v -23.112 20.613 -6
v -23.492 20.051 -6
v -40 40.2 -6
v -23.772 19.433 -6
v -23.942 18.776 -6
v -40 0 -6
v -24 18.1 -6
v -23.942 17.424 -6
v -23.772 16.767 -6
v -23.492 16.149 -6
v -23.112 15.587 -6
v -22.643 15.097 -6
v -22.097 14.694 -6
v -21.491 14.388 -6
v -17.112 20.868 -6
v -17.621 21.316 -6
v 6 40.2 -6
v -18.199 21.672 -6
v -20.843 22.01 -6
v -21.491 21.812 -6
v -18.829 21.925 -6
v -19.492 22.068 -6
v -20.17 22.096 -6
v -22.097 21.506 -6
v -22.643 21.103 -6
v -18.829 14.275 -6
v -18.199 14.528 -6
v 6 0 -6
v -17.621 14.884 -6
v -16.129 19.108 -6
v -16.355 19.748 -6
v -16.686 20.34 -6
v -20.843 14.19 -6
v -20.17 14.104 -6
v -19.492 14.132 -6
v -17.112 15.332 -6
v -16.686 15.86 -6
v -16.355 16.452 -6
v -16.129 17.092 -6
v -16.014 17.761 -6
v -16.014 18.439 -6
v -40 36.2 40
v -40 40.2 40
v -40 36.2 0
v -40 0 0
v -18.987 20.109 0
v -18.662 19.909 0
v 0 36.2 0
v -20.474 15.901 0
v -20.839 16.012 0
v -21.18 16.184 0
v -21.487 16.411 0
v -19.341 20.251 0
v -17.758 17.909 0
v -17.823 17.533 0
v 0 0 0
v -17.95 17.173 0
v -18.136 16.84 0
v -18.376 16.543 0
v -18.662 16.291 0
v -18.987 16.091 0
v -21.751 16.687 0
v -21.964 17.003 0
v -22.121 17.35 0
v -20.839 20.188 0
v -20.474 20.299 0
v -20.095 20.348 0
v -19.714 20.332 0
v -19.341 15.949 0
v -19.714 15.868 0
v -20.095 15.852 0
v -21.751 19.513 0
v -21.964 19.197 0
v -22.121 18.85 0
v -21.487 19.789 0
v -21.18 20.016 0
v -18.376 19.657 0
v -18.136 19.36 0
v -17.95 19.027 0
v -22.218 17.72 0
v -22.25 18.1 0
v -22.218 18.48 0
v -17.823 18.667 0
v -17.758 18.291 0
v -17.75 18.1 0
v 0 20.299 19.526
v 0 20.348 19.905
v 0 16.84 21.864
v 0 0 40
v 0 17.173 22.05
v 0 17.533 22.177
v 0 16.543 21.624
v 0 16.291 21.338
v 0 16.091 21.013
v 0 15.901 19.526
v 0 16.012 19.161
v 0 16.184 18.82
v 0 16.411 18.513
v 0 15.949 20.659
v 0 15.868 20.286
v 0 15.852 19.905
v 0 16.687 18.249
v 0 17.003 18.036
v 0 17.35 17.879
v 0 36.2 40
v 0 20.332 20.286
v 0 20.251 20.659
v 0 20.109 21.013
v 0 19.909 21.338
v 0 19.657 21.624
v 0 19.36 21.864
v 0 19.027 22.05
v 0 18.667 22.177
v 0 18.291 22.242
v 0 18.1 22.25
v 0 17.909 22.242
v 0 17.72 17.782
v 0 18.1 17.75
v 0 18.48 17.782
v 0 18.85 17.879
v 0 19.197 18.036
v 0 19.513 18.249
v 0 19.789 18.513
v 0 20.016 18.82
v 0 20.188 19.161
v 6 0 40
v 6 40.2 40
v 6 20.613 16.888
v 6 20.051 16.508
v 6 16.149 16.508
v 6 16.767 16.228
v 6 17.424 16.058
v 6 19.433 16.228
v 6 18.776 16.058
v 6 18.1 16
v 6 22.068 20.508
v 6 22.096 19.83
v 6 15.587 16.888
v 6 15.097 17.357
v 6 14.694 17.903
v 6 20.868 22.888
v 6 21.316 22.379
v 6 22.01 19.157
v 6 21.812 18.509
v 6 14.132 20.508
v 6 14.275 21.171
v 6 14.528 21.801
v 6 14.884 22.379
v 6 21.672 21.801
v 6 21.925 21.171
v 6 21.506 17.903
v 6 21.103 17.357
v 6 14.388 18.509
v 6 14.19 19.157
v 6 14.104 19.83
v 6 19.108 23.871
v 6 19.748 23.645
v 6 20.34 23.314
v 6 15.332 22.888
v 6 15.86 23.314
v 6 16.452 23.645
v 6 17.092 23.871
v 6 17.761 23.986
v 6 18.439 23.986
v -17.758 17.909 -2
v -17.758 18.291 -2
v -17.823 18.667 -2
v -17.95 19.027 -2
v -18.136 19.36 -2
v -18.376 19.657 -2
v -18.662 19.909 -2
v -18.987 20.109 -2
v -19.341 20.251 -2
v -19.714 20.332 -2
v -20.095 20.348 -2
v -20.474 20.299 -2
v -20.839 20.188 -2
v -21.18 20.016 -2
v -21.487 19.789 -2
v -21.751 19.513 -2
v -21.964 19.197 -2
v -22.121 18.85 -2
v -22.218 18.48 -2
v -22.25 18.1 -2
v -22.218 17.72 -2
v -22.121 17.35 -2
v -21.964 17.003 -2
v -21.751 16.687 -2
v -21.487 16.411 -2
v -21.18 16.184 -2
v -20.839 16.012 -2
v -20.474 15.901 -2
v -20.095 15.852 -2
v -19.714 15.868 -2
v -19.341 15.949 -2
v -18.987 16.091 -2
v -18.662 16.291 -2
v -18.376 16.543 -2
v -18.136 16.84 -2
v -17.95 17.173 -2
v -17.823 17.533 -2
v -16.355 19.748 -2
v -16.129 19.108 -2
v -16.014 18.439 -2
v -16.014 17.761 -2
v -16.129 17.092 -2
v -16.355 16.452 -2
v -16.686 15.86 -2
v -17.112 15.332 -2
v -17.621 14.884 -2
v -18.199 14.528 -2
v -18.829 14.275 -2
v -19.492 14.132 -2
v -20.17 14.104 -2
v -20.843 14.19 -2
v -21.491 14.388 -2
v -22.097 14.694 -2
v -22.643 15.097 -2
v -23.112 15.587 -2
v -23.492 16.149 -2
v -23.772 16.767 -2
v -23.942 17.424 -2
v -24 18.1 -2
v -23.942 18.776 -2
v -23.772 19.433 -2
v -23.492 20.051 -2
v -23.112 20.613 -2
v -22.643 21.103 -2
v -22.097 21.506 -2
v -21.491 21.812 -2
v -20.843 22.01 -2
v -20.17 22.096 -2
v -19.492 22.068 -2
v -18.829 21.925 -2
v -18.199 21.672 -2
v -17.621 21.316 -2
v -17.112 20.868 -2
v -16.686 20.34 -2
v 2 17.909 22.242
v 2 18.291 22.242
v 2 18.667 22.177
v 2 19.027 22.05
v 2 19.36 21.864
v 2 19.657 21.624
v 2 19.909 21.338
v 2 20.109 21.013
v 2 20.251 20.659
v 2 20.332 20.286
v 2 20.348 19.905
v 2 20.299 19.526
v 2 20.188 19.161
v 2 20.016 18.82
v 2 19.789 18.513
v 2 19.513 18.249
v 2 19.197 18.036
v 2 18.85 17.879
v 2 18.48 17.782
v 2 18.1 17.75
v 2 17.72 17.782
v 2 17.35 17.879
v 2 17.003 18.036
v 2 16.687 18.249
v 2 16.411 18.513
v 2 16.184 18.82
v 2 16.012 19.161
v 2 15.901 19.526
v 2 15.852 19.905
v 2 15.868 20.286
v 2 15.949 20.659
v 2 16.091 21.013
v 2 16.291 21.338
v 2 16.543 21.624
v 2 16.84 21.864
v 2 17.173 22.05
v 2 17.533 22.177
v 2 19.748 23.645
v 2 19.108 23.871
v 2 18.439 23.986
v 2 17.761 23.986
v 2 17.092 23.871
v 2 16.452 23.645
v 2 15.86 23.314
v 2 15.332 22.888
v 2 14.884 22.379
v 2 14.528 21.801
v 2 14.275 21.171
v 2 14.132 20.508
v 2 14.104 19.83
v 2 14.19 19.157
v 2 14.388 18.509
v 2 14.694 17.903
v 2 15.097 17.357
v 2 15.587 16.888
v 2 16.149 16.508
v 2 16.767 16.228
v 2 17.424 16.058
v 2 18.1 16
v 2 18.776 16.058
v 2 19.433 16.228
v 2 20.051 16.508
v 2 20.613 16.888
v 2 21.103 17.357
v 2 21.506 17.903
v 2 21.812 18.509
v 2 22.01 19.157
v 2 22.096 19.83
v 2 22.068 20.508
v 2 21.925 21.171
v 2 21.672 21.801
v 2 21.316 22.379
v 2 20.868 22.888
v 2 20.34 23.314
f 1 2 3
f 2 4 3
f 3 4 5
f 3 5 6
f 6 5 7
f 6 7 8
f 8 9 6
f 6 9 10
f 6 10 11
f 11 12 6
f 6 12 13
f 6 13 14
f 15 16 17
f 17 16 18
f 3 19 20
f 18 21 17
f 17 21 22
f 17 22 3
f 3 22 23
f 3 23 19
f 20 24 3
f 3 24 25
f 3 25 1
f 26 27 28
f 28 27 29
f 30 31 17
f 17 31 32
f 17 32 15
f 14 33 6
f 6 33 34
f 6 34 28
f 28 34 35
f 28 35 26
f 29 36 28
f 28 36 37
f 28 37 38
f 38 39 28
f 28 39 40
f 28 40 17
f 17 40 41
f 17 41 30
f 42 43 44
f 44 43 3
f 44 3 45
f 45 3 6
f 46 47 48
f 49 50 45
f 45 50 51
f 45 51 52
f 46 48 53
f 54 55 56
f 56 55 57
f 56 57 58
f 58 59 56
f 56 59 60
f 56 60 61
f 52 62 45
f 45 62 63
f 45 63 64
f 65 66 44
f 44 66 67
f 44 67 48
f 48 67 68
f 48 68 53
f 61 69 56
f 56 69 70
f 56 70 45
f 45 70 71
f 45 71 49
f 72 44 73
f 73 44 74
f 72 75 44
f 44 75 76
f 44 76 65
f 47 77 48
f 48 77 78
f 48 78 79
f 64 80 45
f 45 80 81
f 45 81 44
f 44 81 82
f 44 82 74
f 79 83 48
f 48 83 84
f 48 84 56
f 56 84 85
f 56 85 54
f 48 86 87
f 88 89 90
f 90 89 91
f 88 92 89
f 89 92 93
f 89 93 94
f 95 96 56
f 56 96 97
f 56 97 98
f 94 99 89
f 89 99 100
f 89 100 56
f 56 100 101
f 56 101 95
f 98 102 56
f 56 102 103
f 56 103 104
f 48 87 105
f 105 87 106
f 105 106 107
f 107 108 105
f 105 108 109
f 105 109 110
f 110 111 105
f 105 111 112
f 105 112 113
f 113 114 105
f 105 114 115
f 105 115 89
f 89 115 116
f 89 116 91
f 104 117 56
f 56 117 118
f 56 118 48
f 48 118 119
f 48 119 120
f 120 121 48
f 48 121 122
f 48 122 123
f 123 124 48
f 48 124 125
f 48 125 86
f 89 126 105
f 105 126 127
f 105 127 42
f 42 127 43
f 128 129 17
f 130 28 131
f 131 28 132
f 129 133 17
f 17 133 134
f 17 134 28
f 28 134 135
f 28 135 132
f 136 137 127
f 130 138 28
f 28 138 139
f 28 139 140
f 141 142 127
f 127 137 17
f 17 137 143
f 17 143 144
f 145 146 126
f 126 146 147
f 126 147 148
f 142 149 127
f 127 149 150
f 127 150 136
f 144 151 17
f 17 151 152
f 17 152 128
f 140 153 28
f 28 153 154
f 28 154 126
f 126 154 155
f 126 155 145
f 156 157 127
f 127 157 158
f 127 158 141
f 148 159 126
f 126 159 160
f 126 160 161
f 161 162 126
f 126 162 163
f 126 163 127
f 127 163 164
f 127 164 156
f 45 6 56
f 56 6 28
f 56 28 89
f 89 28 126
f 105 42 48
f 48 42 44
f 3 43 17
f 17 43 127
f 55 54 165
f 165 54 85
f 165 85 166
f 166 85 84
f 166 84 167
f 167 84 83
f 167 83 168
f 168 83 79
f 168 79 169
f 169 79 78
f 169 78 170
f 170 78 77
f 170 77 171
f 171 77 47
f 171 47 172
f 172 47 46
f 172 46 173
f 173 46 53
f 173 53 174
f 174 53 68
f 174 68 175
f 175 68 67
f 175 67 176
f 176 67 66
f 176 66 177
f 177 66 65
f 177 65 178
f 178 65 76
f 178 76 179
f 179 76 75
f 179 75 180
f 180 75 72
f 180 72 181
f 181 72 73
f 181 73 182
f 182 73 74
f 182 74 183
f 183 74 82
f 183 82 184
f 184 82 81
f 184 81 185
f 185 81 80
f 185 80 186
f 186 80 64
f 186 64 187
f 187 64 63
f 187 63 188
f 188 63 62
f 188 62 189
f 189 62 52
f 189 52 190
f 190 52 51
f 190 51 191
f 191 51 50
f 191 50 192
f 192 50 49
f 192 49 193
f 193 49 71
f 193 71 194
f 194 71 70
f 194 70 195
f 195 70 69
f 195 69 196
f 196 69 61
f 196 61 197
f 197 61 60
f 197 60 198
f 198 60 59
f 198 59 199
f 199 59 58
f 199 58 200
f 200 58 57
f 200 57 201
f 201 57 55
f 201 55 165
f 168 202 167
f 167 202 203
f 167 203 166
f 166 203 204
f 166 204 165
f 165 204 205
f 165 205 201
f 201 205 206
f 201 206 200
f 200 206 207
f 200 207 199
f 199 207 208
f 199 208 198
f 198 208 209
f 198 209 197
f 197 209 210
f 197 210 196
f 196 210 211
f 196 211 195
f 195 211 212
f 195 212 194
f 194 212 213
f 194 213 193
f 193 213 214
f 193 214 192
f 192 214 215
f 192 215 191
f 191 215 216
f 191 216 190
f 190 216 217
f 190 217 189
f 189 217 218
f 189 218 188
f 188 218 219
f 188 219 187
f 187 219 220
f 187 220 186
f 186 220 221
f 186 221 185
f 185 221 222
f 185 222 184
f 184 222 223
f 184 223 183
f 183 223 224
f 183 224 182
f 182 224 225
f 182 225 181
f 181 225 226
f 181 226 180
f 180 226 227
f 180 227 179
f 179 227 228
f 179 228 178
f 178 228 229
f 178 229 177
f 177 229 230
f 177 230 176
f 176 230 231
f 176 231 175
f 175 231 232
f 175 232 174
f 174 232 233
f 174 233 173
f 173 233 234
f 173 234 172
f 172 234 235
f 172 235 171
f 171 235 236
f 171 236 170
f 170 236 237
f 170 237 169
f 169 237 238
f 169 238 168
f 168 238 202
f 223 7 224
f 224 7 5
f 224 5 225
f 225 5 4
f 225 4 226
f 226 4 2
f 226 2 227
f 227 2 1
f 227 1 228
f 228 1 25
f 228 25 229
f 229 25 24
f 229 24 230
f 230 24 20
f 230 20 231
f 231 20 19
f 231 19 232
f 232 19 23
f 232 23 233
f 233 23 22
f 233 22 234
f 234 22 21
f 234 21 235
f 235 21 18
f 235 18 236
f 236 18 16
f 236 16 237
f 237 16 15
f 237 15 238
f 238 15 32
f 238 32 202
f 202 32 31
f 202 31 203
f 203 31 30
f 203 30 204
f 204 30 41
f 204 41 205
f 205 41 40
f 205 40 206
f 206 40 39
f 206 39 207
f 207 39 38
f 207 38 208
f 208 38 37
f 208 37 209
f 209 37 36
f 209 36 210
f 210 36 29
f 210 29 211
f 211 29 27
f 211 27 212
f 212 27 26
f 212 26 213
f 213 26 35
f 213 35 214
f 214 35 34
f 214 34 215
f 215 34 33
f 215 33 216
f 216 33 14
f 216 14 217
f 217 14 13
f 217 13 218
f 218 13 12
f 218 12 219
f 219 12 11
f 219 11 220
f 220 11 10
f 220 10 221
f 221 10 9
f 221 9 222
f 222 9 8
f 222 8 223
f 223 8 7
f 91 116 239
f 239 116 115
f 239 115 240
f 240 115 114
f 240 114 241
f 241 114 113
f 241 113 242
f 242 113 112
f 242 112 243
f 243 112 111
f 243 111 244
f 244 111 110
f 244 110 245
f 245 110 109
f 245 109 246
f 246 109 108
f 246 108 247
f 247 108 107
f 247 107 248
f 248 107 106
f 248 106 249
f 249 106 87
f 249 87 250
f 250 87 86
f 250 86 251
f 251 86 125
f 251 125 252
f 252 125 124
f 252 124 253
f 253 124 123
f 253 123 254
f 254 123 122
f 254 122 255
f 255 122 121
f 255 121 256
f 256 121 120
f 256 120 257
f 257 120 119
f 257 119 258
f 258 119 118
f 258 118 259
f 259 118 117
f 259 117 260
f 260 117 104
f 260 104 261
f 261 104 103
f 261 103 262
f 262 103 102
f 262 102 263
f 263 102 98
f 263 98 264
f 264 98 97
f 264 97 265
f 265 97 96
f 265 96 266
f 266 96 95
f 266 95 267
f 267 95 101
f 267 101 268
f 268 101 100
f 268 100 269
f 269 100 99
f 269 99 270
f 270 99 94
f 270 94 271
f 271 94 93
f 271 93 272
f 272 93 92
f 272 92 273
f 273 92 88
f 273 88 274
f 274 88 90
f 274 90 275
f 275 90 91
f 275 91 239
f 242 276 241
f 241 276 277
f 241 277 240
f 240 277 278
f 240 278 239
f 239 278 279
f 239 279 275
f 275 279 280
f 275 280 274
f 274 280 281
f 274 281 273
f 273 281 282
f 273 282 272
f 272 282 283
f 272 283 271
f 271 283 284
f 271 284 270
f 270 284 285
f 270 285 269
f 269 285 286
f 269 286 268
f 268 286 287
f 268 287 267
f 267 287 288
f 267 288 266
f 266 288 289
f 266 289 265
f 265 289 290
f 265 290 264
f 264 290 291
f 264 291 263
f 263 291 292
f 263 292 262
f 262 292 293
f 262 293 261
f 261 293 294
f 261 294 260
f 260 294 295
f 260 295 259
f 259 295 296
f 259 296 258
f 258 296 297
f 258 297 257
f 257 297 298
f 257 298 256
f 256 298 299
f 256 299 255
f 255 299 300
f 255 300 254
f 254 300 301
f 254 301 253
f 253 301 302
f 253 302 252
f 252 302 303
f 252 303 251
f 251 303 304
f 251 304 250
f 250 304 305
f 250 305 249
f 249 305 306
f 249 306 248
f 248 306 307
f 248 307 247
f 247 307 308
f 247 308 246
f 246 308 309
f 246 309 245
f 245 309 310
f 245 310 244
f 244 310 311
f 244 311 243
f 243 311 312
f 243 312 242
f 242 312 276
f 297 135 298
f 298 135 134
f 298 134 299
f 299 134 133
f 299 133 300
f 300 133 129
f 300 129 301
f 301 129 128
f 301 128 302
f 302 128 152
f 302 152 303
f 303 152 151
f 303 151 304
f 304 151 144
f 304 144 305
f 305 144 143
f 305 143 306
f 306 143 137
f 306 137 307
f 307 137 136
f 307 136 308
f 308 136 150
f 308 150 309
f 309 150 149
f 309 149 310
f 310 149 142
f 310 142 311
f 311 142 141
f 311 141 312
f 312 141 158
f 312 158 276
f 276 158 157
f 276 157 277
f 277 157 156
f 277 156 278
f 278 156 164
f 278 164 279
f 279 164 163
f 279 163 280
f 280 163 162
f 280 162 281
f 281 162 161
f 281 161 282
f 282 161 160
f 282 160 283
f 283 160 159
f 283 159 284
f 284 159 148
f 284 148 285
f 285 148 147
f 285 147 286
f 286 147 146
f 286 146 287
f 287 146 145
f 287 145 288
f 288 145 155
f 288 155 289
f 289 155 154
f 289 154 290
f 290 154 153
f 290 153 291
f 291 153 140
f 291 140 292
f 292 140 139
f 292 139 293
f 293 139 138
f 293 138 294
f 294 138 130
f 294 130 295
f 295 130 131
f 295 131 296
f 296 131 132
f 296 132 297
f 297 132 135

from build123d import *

# Parameters (mm, degrees)
EXTRUDE_THIN1_DEPTH                      = 36.2
SKETCH2_W                                = 46
SKETCH2_H                                = 46
BOSS_EXTRUDE1_DEPTH                      = 4
CBORE_FOR_M4_SHCS1_D                     = 4.5
CBORE_FOR_M4_SHCS1_DEPTH                 = 6
CBORE_FOR_M4_SHCS1_CBORE_D               = 8
CBORE_FOR_M4_SHCS1_CBORE_DEPTH           = 4
CBORE_FOR_M4_SHCS1_ON_FACE_2_D           = 4.5
CBORE_FOR_M4_SHCS1_ON_FACE_2_DEPTH       = 6
CBORE_FOR_M4_SHCS1_ON_FACE_2_CBORE_D     = 8
CBORE_FOR_M4_SHCS1_ON_FACE_2_CBORE_DEPTH = 4


with BuildPart() as part:
    # Sketch1 → Extrude-Thin1 (new body)
    with BuildSketch(Plane(origin=(0, 0, 0), x_dir=(1, 0, 0), z_dir=(0, 1, 0))):
        Polygon((-40, 0), (0, 0), (0, -40), (6, -40), (6, 6), (-40, 6), align=None)
    extrude(amount=EXTRUDE_THIN1_DEPTH)

    # Sketch2 → Boss-Extrude1 (add)
    with BuildSketch(Plane(origin=(0, 36.2, 0), x_dir=(1, 0, 0), z_dir=(0, 1, 0))):
        with Locations((-17, -17)):
            Rectangle(SKETCH2_W, SKETCH2_H)
    extrude(amount=BOSS_EXTRUDE1_DEPTH)

    # CBORE for M4 SHCS1
    with Locations(Plane(origin=(6, 18.1, 20), x_dir=(0, 0, 1), z_dir=(1, 0, 0))):
        with Locations((0, 0)):
            CounterBoreHole(CBORE_FOR_M4_SHCS1_D / 2, CBORE_FOR_M4_SHCS1_CBORE_D / 2, CBORE_FOR_M4_SHCS1_CBORE_DEPTH, depth=CBORE_FOR_M4_SHCS1_DEPTH)

    # CBORE for M4 SHCS1 on face 2
    with Locations(Plane(origin=(-20, 18.1, -6), x_dir=(-1, 0, 0), z_dir=(0, 0, -1))):
        with Locations((0, 0)):
            CounterBoreHole(CBORE_FOR_M4_SHCS1_ON_FACE_2_D / 2, CBORE_FOR_M4_SHCS1_ON_FACE_2_CBORE_D / 2, CBORE_FOR_M4_SHCS1_ON_FACE_2_CBORE_DEPTH, depth=CBORE_FOR_M4_SHCS1_ON_FACE_2_DEPTH)


solid = part.part
